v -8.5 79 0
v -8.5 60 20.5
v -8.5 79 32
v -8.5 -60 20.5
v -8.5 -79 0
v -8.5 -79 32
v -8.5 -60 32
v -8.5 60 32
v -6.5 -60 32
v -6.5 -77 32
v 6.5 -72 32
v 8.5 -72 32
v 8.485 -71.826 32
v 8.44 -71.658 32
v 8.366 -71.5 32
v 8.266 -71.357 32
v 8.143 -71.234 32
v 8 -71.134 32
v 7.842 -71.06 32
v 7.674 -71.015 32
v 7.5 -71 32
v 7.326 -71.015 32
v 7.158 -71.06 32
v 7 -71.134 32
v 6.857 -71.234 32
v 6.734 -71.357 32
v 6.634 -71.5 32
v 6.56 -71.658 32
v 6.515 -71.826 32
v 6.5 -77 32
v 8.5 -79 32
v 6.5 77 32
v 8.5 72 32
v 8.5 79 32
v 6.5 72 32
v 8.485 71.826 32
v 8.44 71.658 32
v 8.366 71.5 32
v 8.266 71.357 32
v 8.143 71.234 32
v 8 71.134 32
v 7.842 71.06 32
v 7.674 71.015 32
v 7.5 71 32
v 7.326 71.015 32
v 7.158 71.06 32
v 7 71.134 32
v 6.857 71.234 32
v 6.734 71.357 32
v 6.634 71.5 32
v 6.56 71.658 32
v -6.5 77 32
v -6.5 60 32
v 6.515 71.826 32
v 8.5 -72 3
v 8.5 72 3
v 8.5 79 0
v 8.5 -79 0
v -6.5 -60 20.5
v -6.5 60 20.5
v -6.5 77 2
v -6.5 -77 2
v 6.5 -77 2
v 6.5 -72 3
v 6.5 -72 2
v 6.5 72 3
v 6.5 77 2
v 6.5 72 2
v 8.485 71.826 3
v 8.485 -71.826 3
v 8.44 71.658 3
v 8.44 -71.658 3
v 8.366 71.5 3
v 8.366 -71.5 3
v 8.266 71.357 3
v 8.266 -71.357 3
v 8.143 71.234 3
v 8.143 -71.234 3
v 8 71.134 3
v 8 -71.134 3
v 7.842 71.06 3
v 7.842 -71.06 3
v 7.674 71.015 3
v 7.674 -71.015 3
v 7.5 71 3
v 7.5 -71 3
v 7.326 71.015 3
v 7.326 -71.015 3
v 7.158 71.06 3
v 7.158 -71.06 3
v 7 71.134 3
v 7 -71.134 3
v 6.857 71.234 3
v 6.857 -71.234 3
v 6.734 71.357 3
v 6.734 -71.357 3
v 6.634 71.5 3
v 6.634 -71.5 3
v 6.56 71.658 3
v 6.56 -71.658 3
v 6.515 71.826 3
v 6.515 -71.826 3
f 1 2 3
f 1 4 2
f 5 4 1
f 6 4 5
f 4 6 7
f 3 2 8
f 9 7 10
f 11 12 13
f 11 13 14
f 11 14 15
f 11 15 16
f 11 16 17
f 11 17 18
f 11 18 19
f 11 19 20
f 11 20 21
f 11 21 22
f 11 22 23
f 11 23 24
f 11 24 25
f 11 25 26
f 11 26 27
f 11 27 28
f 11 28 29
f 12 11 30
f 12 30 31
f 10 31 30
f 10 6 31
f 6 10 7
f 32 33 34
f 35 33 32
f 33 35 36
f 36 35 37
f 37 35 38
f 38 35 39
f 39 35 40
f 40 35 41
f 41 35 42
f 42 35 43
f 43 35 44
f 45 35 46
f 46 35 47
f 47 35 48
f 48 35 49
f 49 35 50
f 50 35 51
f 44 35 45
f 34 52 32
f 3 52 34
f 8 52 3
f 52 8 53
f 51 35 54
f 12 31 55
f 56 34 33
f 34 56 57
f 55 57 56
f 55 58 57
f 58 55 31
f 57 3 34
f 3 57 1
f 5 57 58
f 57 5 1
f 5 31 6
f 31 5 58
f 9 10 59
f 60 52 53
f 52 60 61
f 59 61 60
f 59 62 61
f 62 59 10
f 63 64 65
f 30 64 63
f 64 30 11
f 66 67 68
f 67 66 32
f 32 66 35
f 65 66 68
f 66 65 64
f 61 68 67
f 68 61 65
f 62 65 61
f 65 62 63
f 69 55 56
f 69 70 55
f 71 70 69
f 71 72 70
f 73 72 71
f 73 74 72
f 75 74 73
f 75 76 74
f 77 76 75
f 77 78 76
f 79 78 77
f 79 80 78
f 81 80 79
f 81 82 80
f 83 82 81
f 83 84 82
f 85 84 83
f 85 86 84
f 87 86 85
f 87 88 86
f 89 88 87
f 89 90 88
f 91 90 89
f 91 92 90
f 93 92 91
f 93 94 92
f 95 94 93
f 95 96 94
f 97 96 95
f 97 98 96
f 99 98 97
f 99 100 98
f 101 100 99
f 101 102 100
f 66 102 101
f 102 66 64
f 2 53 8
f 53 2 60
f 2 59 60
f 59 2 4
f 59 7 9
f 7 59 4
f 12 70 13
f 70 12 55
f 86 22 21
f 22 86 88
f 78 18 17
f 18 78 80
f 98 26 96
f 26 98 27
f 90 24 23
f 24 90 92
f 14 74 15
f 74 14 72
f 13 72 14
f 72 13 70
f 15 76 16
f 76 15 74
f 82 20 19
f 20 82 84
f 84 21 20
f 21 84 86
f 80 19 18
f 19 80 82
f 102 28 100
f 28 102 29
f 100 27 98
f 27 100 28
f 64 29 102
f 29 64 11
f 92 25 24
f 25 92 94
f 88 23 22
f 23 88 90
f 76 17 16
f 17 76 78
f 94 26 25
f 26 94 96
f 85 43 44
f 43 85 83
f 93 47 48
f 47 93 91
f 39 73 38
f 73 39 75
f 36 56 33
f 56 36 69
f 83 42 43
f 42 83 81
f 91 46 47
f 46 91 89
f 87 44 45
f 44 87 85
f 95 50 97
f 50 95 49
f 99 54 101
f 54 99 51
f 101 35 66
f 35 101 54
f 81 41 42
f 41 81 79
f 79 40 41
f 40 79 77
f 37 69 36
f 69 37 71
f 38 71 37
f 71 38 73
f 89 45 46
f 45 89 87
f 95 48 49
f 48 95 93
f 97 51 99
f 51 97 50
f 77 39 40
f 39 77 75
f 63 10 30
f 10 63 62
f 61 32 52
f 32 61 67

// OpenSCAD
// Definition size of housing
// **************************

sizex = 51;
sizey = 51;
depth = 10;
thick = 2;
gap=2.5;

//Definition of circle angular resolution
$fn = 36;  


union () {
 difference () {
 
     // main block
   translate ([0,0,16]) {
     cube ( [17,158,32], center = true );
   };


   
     
   //remove inner
   translate ([0,0,32]) {
   cube ( [13,160,60], center = true);
   };
   translate ([2,0,33]) {
   cube ( [14,144,60], center = true);
   };
   translate ([-2,0,38]) {
   cube ( [14,120,35], center = true);
   };

   /*translate ([8,0,60]) rotate([0,45,0]) {
   cube ( [20,170,20], center = true);
   };*/

   

         
 };      
 
 //add support fins


   translate ([7.5,-72,0]) {
   cylinder (32,1,true);
   };
   translate ([7.5,72,0]) {
   cylinder (32,1,true);
   };

   translate ([7.5,-77.5,0]) {
   cylinder (32,1,true);
   };
   translate ([7.5,77.5,0]) {
   cylinder (32,1,true);
   };

 
   translate ([-0.5,-78,16]) {
     cube ( [14,2,32], center = true );
   };

   translate ([-0.5,78,16]) {
     cube ( [14,2,32], center = true );
   };


   /*translate ([0,0,32]) {
     cube ( [11,152,32], center = true );
   };*/

 
}
